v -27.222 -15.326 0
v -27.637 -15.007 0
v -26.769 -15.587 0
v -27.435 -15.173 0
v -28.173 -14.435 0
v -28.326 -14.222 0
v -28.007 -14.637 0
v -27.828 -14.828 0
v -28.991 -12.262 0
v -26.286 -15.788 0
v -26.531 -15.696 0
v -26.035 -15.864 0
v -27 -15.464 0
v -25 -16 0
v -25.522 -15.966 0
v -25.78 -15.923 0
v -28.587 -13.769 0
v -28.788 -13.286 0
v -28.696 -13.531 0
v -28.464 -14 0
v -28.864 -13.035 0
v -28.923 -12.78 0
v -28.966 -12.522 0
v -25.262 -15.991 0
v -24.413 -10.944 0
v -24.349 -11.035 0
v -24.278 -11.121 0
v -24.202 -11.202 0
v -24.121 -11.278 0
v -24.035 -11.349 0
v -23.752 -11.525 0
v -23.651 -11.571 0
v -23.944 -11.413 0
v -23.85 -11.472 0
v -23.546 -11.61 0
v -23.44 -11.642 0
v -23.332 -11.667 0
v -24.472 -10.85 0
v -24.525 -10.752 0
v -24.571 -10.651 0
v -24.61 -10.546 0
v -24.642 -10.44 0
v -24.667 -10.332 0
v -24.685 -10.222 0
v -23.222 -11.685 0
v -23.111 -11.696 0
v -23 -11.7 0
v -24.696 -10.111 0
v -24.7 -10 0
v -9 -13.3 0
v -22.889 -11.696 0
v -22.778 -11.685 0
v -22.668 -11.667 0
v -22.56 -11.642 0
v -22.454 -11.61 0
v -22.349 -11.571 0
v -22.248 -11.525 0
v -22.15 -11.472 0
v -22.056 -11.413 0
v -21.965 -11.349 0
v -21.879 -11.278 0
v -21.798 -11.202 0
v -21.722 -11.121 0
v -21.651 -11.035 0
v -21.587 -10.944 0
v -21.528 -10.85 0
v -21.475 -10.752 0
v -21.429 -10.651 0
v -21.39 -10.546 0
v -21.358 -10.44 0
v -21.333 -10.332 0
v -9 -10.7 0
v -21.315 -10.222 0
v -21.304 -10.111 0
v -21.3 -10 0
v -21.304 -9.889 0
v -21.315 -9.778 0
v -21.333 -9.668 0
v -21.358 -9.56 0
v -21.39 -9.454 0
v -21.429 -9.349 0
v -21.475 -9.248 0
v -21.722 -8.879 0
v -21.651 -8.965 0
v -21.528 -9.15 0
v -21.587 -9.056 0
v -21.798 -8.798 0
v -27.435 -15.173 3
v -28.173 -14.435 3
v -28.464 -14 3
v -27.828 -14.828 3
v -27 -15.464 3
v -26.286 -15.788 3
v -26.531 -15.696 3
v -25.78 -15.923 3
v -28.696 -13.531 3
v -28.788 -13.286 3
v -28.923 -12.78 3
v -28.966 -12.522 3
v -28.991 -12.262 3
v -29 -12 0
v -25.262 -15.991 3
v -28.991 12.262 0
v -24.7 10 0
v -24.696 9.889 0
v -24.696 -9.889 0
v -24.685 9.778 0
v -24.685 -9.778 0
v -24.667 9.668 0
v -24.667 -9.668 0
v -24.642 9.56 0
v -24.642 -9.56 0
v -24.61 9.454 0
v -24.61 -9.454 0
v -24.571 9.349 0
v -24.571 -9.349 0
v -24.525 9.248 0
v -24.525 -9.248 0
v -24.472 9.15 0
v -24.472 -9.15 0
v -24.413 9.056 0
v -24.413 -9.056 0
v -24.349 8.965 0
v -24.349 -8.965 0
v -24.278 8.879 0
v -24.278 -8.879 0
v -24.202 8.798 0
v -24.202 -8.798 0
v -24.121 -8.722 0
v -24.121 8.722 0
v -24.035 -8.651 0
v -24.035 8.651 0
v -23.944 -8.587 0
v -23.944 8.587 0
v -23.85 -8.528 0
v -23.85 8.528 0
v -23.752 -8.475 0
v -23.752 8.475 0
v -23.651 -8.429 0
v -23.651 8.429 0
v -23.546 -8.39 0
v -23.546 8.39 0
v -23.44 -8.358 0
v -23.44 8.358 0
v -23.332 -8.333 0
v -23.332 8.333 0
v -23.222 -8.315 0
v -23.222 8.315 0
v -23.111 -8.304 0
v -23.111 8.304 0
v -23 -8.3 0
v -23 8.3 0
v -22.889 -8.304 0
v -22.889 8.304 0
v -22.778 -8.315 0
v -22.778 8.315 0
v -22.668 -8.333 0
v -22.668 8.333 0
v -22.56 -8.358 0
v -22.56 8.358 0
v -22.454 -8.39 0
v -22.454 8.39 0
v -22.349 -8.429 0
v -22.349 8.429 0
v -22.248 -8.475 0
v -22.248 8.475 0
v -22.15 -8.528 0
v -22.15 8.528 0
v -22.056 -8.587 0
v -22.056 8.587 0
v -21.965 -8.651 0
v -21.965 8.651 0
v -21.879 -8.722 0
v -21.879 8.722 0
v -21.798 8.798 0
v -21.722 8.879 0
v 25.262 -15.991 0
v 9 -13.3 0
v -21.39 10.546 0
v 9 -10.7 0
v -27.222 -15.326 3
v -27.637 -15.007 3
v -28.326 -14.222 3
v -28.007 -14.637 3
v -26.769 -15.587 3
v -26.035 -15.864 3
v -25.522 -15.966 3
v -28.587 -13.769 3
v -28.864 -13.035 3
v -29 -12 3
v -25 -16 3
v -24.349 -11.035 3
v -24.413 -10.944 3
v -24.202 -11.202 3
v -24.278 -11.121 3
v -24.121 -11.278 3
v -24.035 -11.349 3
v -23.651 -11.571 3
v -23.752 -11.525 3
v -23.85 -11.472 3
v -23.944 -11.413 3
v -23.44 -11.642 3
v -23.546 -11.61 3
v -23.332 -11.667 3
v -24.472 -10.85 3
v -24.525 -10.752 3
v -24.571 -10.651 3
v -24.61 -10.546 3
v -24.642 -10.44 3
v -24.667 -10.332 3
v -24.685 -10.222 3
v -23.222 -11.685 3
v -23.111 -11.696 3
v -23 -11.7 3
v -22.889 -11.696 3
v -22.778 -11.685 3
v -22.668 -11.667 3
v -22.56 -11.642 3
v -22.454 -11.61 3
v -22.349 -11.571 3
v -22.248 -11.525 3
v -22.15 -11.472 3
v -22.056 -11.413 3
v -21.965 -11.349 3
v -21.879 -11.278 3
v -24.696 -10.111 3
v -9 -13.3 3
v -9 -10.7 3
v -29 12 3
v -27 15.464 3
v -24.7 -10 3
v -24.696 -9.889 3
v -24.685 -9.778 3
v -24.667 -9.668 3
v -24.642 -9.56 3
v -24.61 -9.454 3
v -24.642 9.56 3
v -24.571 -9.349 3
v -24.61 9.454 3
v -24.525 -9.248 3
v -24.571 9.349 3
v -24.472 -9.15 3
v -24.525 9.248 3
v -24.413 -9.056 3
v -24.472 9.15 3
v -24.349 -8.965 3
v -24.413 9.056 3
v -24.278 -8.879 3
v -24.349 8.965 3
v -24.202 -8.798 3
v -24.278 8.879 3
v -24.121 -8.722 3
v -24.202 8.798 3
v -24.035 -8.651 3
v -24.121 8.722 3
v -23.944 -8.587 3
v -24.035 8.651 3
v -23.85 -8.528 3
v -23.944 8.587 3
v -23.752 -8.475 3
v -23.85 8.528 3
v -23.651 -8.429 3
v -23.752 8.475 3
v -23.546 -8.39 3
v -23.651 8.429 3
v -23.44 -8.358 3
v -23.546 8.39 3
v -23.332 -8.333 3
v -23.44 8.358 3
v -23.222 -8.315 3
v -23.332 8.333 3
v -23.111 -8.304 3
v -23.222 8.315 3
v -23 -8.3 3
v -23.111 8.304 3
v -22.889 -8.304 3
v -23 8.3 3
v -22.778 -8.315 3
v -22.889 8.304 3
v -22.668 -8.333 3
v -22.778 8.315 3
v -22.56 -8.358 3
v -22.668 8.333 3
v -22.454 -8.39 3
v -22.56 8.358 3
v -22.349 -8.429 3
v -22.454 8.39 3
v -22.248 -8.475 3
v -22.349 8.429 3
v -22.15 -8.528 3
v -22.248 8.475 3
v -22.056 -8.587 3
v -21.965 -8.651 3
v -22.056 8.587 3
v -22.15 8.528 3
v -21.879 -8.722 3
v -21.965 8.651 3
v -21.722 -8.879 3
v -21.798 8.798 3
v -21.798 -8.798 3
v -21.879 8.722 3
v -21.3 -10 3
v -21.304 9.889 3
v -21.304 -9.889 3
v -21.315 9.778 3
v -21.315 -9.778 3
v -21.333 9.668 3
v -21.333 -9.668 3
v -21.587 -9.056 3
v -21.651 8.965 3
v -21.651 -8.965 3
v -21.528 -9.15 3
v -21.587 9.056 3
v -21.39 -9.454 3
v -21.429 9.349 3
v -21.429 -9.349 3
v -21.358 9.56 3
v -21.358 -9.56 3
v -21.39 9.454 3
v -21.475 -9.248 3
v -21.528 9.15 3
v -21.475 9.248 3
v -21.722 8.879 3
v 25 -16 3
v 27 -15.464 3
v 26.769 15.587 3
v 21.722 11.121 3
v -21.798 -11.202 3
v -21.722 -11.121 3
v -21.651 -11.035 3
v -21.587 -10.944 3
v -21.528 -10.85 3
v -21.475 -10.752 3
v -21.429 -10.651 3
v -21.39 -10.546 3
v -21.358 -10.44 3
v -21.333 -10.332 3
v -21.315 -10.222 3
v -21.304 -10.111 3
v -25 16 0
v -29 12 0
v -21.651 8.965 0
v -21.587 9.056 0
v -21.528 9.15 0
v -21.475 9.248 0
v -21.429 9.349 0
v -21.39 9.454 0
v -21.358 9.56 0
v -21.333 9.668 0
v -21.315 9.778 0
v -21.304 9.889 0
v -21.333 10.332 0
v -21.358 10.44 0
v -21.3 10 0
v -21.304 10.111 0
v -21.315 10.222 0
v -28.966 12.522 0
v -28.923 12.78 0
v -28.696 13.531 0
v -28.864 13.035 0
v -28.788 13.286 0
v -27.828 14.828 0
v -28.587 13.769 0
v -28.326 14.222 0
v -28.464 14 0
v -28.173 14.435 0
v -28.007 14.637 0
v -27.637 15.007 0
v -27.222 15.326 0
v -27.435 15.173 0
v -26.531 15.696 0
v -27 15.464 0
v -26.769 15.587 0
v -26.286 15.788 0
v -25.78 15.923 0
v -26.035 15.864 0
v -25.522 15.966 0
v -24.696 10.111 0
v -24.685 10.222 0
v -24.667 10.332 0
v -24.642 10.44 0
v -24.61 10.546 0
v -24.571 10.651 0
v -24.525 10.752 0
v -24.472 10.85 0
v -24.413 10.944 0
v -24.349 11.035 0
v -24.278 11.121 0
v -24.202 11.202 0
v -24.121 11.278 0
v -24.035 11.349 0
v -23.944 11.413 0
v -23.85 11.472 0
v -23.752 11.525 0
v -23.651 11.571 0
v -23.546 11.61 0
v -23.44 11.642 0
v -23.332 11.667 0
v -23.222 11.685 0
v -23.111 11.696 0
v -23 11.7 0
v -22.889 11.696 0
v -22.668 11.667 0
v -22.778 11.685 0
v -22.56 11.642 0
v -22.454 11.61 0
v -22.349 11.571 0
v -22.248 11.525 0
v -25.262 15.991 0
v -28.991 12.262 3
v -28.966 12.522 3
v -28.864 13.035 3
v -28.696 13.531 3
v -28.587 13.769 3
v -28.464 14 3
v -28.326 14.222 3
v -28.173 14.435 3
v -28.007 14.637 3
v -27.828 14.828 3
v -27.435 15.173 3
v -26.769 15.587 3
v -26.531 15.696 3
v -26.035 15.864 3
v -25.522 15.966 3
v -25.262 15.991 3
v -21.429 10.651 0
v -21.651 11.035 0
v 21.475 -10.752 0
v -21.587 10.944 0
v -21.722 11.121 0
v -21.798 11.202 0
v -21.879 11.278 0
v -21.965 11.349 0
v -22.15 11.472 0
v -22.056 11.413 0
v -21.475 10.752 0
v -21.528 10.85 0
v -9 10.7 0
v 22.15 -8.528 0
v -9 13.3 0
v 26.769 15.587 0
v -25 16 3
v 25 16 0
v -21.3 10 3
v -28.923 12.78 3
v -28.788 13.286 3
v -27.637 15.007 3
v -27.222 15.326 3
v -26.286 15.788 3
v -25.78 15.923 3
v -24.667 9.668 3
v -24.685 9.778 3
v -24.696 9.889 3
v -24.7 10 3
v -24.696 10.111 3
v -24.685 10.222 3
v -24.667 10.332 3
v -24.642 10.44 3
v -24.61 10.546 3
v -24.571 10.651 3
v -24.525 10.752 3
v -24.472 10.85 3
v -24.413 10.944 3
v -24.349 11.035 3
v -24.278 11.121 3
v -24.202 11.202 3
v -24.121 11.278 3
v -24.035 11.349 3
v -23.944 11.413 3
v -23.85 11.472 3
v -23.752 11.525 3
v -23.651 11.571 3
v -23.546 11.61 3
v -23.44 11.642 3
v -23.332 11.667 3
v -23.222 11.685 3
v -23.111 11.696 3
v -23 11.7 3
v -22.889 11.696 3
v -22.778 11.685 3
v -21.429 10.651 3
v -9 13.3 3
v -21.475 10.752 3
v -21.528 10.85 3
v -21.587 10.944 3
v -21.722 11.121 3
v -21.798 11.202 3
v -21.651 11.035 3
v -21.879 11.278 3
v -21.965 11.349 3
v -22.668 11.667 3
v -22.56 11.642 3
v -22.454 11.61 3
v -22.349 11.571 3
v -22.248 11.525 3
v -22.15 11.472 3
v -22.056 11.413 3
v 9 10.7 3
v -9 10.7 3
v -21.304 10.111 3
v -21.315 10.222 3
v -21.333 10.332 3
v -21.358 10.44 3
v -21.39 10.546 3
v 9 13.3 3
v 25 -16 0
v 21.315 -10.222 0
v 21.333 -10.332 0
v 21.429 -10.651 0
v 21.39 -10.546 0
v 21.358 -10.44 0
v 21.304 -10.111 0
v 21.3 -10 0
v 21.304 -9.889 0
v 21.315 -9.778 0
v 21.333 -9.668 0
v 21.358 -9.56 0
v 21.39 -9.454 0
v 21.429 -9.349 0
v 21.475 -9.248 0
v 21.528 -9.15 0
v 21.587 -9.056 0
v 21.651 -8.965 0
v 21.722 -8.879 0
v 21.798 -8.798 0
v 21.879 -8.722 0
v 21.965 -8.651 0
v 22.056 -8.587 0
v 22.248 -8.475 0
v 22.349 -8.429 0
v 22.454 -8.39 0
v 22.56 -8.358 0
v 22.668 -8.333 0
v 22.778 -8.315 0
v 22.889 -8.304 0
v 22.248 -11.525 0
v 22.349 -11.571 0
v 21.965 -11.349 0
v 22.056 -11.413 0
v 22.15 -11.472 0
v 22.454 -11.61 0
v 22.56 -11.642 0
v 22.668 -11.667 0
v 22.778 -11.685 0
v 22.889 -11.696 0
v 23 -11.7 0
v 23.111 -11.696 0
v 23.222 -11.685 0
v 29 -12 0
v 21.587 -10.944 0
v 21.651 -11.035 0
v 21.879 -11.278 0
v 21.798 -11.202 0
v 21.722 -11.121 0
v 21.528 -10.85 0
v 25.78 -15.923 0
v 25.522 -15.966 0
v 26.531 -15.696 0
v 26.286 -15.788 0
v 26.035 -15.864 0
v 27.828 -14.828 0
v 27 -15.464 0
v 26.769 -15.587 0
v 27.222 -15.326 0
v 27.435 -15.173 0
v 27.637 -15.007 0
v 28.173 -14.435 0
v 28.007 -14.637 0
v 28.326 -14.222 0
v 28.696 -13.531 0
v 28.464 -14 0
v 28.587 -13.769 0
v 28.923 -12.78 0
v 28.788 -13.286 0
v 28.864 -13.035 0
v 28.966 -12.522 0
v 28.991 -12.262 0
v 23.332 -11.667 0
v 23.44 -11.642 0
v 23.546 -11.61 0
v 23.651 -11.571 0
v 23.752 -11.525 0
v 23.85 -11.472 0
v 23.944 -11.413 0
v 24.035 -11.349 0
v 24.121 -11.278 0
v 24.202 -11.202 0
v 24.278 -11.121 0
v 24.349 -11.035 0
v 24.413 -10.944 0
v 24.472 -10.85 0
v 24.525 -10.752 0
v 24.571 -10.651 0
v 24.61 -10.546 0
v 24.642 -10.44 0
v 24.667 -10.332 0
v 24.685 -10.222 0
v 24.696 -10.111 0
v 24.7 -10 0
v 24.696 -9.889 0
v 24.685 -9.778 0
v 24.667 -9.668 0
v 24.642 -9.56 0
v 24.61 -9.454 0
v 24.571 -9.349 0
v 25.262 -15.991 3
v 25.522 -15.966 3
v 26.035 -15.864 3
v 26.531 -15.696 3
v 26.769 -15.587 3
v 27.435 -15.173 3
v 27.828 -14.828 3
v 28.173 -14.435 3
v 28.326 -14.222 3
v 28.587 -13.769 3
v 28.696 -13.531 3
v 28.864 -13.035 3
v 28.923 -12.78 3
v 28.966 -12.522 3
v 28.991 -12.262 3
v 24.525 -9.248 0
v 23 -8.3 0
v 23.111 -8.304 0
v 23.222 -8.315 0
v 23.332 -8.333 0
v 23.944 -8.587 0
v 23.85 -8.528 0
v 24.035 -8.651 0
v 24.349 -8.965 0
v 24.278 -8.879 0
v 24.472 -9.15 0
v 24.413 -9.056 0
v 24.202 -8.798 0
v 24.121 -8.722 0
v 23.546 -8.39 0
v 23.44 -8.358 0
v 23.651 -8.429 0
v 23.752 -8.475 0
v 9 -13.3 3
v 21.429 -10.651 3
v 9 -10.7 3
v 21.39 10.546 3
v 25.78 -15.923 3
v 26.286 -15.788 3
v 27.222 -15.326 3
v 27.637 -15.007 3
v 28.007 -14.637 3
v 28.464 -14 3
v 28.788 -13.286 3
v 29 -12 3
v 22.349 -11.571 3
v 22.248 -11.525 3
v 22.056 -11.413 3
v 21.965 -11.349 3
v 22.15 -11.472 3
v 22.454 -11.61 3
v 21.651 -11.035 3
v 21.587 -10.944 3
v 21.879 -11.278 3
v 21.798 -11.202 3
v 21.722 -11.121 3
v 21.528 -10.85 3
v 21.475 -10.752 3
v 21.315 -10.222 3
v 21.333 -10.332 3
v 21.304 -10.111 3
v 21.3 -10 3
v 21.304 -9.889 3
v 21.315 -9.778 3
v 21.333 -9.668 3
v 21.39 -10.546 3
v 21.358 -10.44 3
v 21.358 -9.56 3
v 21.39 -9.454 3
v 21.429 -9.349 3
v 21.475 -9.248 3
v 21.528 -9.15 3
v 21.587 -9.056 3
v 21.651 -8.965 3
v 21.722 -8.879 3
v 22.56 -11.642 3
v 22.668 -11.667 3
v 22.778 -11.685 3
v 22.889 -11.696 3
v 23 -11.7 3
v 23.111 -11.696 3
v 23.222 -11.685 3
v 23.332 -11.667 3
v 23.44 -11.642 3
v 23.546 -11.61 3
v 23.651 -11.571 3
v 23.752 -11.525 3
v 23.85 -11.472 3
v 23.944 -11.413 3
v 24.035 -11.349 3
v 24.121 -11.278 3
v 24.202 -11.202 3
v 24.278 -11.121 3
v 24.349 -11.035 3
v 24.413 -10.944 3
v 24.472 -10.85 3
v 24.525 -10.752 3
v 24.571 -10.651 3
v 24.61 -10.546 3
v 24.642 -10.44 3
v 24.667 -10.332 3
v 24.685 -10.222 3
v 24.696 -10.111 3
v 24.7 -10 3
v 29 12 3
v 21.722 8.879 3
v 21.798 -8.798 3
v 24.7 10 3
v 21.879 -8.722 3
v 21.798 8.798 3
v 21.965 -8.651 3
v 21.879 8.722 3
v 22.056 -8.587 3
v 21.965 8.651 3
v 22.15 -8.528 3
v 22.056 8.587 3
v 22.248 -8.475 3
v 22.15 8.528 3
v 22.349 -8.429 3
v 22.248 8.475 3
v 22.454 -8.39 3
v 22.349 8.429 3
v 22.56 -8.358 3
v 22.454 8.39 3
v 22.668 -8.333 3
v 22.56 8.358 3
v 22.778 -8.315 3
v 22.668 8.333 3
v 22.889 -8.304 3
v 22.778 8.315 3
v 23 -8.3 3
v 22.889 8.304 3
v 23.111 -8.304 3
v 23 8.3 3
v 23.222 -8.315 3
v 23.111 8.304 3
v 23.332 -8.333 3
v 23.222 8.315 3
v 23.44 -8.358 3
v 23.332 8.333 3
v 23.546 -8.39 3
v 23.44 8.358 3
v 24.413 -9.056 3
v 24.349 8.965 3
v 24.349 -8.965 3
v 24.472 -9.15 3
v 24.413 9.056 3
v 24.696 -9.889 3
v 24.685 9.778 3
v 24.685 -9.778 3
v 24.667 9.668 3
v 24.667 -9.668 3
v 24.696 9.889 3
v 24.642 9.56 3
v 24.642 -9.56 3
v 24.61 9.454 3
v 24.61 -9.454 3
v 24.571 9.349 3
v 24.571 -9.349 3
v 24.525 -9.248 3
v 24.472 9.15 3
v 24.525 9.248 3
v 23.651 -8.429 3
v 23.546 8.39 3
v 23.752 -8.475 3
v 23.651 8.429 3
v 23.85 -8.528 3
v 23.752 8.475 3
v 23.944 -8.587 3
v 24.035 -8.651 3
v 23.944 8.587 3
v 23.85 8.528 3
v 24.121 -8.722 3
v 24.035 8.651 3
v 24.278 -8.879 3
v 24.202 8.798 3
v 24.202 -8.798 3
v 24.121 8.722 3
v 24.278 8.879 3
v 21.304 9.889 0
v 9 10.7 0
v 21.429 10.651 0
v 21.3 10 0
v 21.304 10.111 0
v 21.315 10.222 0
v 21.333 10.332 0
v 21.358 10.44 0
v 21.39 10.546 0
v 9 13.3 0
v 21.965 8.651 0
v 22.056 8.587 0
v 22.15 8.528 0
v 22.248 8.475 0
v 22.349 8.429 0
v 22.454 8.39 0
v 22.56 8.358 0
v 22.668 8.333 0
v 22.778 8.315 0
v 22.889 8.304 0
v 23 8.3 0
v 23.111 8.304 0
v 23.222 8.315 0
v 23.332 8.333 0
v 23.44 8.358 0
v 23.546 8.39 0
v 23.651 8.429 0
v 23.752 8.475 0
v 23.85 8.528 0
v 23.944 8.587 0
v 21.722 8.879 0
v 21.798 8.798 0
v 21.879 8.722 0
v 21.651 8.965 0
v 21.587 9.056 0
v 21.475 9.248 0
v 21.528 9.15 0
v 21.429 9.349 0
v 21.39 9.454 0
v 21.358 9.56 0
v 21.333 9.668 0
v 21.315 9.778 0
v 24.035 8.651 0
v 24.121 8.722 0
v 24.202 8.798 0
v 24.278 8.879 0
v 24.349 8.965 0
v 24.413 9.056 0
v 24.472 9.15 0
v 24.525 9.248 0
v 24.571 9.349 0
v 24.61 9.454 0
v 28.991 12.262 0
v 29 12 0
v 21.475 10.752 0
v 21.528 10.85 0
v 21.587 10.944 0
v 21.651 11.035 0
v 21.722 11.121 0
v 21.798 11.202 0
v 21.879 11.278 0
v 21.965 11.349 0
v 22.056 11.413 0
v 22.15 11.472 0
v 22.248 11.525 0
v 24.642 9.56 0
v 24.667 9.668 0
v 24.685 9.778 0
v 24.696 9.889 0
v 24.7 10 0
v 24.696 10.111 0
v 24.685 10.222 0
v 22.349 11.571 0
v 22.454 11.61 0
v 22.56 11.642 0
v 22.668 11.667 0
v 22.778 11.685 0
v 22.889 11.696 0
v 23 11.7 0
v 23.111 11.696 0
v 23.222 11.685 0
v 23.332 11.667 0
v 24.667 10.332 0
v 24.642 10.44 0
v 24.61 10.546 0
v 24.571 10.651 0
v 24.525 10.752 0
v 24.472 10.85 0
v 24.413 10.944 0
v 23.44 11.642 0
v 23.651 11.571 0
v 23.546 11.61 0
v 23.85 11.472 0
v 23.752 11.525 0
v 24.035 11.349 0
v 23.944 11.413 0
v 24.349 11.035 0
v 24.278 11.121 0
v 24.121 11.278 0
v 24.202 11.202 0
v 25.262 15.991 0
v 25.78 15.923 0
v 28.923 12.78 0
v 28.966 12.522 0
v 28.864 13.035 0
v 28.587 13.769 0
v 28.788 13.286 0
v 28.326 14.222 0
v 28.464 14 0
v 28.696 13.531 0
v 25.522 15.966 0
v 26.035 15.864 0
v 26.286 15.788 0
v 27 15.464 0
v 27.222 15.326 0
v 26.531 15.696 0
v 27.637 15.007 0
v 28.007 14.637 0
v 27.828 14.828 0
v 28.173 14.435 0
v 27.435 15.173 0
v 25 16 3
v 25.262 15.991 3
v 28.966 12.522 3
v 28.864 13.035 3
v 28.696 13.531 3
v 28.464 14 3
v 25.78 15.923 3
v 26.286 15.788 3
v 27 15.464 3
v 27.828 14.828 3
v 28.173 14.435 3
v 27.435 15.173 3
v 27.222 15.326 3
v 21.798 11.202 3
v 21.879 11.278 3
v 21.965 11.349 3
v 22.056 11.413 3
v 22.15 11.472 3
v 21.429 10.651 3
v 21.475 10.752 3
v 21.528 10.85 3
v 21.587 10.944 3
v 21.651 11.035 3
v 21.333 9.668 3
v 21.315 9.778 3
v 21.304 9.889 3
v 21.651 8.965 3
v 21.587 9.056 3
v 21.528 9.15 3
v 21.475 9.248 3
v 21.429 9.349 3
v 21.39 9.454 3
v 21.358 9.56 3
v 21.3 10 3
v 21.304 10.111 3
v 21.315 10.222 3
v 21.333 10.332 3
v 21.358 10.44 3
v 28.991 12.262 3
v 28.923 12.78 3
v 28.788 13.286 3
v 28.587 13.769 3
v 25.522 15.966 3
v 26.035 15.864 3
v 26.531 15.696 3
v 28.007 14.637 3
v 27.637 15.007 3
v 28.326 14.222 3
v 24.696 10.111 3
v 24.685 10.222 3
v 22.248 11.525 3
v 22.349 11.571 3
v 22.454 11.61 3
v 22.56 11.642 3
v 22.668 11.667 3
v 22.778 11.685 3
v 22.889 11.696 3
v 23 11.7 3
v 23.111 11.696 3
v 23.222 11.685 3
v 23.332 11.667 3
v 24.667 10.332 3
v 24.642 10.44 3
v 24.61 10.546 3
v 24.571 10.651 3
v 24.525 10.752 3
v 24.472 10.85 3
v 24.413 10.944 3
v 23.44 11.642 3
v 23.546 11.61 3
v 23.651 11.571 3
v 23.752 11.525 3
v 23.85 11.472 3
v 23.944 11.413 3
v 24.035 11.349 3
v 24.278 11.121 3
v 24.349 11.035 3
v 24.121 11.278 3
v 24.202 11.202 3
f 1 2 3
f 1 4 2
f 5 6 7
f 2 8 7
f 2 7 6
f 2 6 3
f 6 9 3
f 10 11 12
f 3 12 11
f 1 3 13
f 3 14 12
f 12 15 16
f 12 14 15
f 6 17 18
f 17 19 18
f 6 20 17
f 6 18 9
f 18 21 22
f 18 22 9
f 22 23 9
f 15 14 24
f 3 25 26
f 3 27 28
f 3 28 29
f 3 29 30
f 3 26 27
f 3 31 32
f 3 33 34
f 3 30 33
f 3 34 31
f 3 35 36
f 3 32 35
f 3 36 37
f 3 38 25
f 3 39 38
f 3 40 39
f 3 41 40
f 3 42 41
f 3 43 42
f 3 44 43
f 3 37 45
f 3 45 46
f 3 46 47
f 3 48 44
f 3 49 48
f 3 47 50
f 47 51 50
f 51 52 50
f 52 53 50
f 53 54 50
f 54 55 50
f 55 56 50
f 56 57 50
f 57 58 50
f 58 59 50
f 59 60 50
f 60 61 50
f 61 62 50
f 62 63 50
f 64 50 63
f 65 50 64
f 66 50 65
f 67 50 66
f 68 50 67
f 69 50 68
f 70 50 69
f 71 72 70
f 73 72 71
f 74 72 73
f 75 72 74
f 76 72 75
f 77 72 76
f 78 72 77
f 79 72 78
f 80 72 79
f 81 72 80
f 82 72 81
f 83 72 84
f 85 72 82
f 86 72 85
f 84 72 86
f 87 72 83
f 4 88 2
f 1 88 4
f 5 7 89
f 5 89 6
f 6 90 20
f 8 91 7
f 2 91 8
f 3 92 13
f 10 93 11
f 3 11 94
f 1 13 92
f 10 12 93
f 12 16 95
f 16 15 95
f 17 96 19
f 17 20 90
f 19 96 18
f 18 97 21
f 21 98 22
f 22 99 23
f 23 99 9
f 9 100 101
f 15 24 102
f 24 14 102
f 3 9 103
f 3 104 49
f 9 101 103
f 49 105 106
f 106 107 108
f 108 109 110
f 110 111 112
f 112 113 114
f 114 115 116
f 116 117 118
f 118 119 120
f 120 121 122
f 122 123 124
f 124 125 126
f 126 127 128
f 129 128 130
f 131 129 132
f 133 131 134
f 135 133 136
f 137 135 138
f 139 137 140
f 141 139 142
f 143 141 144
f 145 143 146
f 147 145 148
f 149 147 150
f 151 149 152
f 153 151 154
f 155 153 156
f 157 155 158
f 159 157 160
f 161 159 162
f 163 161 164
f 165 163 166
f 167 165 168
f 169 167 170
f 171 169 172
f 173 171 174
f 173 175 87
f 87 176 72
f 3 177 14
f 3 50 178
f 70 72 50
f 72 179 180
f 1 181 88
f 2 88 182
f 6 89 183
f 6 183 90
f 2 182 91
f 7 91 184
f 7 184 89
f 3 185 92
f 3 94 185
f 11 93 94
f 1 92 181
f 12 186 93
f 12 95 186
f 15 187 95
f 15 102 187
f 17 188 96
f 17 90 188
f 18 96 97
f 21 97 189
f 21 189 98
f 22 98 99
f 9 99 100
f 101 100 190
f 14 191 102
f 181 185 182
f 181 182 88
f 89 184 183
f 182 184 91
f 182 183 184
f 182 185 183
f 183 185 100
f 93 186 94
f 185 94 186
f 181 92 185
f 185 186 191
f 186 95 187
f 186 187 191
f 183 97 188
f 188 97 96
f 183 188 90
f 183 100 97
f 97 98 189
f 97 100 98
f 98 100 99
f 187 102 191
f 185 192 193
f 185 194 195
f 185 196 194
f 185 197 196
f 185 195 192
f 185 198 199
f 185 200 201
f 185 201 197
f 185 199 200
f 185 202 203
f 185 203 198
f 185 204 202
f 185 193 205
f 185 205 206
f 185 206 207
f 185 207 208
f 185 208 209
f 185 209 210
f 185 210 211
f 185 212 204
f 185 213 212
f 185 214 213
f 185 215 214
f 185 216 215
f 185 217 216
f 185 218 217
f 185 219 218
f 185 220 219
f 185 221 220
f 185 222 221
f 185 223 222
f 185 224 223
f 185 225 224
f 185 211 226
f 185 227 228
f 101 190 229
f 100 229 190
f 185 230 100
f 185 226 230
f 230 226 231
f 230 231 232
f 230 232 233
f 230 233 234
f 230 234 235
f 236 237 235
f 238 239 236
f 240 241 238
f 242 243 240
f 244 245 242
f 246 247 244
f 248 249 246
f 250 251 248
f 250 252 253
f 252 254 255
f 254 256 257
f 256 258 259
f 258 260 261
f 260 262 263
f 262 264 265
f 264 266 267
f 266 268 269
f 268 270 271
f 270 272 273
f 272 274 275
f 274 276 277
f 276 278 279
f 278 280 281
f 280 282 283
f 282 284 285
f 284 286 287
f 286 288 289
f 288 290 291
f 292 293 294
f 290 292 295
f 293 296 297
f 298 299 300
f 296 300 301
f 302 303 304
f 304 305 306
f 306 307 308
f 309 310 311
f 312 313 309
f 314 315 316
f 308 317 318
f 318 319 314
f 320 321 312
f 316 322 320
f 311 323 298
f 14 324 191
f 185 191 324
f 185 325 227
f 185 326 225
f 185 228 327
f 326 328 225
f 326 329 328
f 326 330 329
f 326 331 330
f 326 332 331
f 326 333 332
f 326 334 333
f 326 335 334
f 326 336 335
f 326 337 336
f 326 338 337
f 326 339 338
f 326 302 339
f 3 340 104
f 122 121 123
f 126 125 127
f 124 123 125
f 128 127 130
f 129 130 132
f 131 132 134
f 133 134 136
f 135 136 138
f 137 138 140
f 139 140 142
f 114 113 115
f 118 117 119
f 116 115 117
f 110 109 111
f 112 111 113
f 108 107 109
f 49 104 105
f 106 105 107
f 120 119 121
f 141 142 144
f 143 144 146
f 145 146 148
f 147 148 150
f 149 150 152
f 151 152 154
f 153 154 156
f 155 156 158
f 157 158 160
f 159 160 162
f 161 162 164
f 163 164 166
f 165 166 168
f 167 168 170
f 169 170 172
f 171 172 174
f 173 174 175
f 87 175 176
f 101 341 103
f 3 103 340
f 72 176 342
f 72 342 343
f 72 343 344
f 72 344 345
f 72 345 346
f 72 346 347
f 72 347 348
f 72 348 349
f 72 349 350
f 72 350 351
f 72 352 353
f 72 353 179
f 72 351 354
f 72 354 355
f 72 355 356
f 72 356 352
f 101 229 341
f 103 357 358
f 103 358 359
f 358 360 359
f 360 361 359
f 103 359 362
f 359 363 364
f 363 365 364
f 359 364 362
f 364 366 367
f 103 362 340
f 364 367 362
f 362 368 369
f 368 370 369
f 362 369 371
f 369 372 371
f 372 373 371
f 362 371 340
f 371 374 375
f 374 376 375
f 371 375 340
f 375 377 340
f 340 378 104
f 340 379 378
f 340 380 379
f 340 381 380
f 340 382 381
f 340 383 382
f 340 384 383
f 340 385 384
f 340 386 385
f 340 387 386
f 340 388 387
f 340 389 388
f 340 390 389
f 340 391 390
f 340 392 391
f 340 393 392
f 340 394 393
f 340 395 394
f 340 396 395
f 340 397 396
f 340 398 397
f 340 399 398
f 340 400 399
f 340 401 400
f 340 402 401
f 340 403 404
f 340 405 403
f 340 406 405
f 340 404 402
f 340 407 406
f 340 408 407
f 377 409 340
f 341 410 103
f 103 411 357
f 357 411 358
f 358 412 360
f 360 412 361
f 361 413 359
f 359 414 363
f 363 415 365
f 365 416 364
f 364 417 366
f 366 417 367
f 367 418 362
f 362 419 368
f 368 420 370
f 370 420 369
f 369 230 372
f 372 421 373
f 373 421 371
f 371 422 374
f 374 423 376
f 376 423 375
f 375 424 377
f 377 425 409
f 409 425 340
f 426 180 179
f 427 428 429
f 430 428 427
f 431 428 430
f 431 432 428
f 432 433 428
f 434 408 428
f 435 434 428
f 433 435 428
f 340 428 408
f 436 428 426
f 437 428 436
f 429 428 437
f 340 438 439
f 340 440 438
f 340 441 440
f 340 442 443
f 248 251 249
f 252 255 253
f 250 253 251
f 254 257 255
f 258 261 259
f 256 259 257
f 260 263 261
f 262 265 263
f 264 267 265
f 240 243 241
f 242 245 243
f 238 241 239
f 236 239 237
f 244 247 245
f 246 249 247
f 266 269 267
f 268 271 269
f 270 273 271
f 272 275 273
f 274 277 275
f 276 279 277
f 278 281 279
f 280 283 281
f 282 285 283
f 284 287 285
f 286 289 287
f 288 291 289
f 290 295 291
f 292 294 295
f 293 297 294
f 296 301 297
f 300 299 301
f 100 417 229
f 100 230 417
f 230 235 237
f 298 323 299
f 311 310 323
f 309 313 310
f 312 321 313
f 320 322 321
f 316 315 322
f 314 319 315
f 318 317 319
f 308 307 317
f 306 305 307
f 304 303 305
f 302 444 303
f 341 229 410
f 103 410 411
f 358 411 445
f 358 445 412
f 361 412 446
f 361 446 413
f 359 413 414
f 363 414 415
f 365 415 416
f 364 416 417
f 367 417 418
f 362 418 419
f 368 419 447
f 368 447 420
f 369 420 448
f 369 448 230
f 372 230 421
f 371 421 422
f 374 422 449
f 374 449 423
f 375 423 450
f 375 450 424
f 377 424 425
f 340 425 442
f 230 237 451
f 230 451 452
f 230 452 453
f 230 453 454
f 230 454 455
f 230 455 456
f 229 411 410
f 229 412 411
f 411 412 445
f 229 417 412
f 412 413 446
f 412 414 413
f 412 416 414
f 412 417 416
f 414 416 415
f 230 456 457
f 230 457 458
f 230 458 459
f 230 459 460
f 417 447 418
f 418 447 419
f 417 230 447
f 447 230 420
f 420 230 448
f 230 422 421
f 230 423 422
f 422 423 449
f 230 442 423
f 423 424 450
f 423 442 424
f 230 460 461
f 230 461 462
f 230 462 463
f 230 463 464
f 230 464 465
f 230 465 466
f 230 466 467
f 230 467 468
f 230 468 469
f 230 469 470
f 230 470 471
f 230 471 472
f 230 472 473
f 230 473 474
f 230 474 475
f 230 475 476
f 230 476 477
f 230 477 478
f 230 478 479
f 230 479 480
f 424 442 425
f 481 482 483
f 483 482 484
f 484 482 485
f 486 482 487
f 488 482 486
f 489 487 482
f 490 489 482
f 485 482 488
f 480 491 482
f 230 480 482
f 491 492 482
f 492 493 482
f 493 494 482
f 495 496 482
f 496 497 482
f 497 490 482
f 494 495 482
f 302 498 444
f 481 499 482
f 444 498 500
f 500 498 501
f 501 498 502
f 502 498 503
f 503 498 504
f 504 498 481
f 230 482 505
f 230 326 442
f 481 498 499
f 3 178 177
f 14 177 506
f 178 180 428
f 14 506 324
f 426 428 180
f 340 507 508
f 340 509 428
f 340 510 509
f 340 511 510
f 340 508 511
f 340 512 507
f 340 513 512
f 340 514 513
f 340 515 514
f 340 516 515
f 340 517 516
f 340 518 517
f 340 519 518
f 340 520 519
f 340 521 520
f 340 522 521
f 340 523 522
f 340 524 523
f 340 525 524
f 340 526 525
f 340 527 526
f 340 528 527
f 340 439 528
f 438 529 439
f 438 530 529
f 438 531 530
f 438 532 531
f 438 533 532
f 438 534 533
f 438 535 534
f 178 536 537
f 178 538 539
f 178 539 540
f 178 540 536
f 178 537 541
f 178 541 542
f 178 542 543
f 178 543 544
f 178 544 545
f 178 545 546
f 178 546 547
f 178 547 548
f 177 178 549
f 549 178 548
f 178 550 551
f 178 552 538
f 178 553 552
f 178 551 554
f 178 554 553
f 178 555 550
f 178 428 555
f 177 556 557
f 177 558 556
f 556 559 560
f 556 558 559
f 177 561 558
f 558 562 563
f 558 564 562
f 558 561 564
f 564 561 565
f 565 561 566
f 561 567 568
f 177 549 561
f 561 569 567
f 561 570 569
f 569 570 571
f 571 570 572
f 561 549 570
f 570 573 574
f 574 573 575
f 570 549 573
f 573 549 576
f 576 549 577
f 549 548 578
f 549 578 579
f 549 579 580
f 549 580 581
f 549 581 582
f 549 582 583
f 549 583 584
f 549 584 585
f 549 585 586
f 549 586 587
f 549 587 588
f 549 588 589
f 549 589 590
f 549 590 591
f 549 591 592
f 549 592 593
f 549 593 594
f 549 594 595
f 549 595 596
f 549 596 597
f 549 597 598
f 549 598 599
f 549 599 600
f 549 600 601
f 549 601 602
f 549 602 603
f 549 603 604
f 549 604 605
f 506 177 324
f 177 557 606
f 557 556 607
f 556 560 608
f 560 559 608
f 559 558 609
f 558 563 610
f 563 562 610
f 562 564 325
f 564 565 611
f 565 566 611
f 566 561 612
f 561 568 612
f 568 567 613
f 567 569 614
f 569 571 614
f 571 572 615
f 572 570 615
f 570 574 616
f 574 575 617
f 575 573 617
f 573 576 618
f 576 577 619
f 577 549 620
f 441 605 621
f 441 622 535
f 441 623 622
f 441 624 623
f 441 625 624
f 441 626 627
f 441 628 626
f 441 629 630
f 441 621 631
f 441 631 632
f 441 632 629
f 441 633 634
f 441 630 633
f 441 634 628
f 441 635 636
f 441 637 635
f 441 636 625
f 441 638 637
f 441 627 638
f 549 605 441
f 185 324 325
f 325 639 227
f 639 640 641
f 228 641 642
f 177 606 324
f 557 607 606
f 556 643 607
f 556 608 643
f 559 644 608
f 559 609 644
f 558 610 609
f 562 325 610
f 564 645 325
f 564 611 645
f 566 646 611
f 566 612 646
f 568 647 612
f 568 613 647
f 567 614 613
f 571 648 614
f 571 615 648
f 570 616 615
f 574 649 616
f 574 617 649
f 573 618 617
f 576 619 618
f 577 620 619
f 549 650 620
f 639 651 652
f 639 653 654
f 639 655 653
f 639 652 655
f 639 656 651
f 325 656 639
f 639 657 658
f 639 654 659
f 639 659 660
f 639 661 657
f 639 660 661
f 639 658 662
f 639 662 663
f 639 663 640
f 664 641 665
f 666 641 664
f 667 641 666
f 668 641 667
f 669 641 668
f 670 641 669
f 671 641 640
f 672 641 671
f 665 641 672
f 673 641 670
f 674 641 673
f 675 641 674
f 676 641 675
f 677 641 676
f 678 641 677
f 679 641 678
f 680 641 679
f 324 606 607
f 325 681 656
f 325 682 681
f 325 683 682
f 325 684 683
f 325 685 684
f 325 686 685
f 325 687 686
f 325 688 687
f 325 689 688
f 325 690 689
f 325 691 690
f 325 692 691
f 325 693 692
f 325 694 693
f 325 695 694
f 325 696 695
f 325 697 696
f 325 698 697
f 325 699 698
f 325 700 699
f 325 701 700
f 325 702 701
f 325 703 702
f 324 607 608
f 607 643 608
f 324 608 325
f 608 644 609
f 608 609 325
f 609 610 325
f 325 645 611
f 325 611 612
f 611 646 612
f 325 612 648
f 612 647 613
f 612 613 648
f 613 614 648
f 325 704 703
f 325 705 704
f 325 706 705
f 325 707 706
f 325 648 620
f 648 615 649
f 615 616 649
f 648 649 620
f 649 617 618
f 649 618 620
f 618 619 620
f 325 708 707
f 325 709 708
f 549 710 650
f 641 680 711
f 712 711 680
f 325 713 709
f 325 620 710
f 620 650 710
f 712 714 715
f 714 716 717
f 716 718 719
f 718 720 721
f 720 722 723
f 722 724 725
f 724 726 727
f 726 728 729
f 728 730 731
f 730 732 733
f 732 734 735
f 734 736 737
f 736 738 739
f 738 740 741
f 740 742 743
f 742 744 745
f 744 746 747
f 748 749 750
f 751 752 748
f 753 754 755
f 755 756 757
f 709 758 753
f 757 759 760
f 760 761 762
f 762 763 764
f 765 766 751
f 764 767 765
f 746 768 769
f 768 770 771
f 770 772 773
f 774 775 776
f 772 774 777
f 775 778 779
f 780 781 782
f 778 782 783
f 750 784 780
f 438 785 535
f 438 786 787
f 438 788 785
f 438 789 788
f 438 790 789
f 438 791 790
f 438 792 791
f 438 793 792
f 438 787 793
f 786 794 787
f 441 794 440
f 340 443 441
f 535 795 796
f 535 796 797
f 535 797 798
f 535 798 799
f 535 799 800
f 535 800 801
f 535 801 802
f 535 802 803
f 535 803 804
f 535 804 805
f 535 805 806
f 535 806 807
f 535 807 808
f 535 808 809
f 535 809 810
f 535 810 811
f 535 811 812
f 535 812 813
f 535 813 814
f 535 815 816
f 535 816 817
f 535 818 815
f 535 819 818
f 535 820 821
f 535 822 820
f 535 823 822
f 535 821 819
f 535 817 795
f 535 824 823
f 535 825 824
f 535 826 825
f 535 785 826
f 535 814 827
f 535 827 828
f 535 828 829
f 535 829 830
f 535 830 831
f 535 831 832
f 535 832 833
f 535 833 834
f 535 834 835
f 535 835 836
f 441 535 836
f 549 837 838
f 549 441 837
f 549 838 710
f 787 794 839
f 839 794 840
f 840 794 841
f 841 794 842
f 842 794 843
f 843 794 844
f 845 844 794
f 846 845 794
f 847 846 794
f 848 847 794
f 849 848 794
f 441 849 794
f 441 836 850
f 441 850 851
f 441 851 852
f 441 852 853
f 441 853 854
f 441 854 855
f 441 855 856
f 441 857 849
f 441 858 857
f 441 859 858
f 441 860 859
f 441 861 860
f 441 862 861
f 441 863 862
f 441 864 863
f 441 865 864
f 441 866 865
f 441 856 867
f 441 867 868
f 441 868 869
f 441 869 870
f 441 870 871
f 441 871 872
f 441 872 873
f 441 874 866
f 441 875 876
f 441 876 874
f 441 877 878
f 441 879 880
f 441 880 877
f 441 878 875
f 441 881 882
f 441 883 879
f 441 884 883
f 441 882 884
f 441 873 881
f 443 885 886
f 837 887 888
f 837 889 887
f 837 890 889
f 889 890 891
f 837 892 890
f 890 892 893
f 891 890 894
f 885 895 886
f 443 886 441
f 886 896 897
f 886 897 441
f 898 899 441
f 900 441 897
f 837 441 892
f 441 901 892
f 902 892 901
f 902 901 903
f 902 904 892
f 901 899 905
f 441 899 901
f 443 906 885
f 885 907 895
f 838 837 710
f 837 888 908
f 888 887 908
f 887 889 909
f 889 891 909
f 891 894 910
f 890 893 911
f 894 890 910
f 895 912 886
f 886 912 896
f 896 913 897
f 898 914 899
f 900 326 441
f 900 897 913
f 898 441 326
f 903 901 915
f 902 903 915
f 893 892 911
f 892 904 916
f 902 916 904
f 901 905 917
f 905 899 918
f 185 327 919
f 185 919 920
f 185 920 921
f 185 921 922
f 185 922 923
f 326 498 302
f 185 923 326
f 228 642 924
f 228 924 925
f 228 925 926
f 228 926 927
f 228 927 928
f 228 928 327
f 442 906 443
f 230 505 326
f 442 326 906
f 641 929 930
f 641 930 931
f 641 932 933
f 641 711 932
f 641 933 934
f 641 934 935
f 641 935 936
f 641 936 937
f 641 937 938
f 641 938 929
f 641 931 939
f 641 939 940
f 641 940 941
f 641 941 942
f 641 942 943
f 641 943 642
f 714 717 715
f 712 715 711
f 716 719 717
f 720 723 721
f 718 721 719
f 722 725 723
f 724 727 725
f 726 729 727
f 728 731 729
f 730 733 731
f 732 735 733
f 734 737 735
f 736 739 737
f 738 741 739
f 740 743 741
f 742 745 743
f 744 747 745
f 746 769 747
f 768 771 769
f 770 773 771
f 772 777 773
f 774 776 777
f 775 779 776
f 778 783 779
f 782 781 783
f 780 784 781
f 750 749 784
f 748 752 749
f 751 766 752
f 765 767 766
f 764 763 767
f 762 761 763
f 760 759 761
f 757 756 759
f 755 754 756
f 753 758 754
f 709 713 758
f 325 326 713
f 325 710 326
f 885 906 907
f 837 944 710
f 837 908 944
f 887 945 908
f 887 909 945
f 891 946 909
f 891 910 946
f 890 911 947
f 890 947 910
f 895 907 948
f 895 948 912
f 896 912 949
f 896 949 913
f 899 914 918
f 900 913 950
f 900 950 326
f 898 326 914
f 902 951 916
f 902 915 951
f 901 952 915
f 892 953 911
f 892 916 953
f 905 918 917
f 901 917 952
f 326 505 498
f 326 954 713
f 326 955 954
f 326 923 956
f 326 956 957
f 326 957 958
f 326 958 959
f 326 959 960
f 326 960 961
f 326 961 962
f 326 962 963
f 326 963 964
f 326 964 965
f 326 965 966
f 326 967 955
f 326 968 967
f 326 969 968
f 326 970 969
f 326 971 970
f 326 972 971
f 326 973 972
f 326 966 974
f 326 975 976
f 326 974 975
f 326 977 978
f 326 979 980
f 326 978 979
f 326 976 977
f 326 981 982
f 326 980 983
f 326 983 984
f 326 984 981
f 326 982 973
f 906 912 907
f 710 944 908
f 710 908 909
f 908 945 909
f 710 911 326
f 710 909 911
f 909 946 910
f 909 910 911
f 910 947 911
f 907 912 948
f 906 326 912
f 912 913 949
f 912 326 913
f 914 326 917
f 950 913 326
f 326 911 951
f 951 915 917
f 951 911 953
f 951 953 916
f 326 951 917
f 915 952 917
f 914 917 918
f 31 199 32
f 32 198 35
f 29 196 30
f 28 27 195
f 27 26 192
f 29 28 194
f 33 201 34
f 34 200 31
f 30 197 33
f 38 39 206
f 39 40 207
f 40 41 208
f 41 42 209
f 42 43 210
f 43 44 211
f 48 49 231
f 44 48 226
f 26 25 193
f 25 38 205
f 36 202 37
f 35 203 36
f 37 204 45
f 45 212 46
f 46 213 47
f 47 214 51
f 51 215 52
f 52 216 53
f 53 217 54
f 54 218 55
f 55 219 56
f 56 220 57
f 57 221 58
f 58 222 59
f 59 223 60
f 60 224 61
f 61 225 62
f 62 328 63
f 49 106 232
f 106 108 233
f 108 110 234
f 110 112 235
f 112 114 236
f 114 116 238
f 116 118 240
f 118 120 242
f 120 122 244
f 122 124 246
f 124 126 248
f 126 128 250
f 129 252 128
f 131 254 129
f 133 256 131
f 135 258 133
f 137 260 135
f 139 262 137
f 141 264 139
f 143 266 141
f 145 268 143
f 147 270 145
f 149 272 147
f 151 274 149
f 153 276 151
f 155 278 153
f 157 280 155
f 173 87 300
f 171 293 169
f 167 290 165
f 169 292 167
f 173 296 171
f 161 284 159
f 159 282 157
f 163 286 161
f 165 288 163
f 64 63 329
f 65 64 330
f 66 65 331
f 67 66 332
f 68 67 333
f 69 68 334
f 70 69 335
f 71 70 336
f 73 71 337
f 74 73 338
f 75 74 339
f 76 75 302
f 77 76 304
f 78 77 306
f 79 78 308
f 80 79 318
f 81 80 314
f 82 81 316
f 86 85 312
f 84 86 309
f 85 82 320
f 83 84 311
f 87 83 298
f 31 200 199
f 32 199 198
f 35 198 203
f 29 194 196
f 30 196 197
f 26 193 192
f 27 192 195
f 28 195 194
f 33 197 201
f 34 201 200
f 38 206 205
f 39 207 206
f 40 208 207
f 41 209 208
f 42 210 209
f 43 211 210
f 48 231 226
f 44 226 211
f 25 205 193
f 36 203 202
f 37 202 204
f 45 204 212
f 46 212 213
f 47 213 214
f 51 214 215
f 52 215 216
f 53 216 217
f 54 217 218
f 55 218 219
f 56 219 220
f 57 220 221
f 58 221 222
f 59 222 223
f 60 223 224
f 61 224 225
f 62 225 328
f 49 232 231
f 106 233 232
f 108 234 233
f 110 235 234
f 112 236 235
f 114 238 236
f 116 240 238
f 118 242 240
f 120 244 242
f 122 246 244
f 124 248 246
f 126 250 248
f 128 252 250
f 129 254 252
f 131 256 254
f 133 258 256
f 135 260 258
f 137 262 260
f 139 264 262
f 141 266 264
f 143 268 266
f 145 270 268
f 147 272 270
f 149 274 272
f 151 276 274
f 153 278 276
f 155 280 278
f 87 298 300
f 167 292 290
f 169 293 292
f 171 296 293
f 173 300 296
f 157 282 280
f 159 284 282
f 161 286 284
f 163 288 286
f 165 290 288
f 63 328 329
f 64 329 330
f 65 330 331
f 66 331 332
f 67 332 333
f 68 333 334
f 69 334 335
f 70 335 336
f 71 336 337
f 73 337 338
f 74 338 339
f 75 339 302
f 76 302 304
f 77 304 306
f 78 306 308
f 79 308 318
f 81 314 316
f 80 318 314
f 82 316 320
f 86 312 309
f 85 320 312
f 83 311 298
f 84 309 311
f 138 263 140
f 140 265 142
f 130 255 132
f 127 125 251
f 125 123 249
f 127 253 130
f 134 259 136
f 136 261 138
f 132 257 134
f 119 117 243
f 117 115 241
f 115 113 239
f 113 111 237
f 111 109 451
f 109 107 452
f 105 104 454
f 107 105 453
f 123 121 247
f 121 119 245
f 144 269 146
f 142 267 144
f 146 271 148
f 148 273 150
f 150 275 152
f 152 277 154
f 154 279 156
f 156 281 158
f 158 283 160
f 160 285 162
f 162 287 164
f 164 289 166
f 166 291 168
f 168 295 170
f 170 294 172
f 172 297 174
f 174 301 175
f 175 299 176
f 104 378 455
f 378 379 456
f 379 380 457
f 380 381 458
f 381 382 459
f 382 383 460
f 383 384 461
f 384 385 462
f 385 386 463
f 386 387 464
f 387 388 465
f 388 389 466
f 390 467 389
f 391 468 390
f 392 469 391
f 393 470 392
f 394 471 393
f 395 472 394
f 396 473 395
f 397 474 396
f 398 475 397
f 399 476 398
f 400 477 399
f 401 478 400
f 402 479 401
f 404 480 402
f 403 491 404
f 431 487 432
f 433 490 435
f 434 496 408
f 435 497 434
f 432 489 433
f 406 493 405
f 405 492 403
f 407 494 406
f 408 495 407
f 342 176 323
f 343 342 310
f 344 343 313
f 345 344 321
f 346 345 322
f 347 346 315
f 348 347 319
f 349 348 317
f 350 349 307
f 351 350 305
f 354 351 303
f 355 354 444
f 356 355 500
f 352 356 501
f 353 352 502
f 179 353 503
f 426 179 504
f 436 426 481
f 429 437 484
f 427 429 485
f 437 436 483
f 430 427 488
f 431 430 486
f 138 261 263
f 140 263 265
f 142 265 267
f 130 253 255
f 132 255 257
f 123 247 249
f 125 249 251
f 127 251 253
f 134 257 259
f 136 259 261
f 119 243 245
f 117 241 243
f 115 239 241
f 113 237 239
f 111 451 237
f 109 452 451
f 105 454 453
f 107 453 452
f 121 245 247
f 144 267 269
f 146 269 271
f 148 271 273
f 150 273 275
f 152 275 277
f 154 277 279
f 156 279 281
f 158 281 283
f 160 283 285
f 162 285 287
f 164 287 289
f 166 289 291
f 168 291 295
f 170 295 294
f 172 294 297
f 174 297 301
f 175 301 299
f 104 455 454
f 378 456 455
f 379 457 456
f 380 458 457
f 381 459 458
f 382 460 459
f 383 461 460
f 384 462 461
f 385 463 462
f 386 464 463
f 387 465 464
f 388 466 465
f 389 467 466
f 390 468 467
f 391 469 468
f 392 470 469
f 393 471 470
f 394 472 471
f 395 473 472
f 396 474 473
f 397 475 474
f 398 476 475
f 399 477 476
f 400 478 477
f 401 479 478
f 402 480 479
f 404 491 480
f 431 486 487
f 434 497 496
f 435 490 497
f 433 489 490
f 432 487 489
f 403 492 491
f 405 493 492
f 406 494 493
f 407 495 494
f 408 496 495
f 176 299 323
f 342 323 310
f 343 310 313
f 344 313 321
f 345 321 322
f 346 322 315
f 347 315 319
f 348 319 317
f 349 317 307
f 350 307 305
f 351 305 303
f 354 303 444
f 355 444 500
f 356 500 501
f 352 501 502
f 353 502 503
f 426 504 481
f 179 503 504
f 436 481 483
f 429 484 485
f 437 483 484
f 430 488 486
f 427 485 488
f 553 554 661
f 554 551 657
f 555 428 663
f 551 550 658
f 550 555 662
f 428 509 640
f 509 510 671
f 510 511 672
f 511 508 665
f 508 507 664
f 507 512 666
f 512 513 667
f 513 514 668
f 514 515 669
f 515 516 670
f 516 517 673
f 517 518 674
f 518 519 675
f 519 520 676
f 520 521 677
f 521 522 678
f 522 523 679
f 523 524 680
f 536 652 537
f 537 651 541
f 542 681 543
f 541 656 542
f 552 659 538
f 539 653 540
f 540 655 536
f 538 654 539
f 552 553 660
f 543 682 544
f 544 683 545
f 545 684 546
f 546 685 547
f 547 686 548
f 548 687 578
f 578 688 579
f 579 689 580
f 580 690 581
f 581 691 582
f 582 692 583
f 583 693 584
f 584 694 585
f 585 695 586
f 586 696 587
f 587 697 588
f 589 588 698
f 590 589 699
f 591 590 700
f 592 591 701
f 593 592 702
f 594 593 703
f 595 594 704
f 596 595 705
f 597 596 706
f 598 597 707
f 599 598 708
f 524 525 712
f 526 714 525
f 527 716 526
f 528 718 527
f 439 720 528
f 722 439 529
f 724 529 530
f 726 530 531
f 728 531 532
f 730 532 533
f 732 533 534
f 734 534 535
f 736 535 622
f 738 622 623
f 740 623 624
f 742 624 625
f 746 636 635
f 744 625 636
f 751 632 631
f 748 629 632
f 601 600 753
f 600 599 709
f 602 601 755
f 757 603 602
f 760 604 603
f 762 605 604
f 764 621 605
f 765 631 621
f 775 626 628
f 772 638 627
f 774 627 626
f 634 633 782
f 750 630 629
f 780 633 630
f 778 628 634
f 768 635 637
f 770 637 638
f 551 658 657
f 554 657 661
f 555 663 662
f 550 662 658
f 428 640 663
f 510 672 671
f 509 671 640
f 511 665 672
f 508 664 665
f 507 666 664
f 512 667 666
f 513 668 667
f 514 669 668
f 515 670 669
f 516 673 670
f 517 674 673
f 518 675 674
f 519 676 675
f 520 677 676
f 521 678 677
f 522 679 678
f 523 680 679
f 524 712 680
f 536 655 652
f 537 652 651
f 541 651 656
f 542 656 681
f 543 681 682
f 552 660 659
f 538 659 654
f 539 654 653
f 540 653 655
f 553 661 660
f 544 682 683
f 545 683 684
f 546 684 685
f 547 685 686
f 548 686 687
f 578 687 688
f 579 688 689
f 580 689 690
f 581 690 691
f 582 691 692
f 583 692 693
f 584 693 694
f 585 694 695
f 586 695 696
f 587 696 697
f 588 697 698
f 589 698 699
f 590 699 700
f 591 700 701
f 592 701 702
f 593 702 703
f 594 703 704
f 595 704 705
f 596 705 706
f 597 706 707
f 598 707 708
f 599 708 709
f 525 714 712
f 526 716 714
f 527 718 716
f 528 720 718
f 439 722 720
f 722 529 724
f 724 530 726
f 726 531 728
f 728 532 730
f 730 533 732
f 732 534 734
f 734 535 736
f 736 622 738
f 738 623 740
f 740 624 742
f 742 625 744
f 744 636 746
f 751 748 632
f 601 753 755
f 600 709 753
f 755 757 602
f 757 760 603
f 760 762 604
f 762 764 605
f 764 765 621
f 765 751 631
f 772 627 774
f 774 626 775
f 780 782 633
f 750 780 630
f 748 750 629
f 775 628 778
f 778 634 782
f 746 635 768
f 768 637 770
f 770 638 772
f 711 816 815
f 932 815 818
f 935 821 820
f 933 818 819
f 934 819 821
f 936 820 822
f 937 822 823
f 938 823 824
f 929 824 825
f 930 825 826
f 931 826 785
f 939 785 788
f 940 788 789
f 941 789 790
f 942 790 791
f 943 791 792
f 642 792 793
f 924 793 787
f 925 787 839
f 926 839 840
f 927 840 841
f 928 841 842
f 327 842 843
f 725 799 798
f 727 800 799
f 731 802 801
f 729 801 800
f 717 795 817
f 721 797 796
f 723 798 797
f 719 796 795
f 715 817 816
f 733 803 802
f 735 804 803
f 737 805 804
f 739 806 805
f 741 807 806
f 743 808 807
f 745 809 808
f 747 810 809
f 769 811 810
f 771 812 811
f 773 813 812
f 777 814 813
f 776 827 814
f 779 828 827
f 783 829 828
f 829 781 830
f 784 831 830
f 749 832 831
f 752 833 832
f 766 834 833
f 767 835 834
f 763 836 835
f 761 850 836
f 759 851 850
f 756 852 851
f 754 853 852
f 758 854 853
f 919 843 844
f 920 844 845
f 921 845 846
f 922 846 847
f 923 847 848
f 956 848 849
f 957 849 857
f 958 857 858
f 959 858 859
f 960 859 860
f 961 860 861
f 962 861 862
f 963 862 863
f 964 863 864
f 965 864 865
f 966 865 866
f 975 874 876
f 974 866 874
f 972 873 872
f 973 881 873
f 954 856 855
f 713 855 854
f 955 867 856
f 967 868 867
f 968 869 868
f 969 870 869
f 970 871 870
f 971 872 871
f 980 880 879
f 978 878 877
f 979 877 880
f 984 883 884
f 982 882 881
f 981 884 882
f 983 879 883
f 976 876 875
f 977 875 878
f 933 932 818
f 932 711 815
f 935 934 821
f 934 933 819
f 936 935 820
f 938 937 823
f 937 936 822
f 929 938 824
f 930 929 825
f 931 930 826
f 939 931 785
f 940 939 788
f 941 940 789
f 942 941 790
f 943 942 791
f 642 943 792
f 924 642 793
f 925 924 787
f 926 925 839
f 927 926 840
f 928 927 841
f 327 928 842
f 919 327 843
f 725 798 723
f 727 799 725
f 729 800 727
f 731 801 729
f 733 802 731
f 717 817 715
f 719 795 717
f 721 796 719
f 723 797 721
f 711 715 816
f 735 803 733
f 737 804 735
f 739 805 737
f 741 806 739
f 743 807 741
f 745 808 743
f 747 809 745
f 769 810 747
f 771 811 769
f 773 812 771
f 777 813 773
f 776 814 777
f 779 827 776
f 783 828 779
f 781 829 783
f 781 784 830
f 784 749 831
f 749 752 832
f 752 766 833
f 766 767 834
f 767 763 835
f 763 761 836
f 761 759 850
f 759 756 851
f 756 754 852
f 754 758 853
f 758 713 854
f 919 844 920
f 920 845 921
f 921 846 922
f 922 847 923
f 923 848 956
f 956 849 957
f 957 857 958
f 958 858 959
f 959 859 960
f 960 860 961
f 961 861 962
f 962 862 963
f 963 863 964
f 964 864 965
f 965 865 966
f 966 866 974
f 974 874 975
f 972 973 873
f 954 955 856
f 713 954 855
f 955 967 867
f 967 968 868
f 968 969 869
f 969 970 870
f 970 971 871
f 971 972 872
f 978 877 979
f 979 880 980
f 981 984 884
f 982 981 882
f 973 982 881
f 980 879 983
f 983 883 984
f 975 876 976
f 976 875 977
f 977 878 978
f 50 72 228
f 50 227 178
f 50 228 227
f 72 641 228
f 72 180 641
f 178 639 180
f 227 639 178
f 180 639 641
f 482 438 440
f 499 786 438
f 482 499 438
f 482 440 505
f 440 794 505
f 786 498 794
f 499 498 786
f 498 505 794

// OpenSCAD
// Units: mm. Generic prototype; read ../audit/CAD_AUDIT.md.
$fn=96;
use <../cute_rover_complete.scad>;
esp32_tray();
